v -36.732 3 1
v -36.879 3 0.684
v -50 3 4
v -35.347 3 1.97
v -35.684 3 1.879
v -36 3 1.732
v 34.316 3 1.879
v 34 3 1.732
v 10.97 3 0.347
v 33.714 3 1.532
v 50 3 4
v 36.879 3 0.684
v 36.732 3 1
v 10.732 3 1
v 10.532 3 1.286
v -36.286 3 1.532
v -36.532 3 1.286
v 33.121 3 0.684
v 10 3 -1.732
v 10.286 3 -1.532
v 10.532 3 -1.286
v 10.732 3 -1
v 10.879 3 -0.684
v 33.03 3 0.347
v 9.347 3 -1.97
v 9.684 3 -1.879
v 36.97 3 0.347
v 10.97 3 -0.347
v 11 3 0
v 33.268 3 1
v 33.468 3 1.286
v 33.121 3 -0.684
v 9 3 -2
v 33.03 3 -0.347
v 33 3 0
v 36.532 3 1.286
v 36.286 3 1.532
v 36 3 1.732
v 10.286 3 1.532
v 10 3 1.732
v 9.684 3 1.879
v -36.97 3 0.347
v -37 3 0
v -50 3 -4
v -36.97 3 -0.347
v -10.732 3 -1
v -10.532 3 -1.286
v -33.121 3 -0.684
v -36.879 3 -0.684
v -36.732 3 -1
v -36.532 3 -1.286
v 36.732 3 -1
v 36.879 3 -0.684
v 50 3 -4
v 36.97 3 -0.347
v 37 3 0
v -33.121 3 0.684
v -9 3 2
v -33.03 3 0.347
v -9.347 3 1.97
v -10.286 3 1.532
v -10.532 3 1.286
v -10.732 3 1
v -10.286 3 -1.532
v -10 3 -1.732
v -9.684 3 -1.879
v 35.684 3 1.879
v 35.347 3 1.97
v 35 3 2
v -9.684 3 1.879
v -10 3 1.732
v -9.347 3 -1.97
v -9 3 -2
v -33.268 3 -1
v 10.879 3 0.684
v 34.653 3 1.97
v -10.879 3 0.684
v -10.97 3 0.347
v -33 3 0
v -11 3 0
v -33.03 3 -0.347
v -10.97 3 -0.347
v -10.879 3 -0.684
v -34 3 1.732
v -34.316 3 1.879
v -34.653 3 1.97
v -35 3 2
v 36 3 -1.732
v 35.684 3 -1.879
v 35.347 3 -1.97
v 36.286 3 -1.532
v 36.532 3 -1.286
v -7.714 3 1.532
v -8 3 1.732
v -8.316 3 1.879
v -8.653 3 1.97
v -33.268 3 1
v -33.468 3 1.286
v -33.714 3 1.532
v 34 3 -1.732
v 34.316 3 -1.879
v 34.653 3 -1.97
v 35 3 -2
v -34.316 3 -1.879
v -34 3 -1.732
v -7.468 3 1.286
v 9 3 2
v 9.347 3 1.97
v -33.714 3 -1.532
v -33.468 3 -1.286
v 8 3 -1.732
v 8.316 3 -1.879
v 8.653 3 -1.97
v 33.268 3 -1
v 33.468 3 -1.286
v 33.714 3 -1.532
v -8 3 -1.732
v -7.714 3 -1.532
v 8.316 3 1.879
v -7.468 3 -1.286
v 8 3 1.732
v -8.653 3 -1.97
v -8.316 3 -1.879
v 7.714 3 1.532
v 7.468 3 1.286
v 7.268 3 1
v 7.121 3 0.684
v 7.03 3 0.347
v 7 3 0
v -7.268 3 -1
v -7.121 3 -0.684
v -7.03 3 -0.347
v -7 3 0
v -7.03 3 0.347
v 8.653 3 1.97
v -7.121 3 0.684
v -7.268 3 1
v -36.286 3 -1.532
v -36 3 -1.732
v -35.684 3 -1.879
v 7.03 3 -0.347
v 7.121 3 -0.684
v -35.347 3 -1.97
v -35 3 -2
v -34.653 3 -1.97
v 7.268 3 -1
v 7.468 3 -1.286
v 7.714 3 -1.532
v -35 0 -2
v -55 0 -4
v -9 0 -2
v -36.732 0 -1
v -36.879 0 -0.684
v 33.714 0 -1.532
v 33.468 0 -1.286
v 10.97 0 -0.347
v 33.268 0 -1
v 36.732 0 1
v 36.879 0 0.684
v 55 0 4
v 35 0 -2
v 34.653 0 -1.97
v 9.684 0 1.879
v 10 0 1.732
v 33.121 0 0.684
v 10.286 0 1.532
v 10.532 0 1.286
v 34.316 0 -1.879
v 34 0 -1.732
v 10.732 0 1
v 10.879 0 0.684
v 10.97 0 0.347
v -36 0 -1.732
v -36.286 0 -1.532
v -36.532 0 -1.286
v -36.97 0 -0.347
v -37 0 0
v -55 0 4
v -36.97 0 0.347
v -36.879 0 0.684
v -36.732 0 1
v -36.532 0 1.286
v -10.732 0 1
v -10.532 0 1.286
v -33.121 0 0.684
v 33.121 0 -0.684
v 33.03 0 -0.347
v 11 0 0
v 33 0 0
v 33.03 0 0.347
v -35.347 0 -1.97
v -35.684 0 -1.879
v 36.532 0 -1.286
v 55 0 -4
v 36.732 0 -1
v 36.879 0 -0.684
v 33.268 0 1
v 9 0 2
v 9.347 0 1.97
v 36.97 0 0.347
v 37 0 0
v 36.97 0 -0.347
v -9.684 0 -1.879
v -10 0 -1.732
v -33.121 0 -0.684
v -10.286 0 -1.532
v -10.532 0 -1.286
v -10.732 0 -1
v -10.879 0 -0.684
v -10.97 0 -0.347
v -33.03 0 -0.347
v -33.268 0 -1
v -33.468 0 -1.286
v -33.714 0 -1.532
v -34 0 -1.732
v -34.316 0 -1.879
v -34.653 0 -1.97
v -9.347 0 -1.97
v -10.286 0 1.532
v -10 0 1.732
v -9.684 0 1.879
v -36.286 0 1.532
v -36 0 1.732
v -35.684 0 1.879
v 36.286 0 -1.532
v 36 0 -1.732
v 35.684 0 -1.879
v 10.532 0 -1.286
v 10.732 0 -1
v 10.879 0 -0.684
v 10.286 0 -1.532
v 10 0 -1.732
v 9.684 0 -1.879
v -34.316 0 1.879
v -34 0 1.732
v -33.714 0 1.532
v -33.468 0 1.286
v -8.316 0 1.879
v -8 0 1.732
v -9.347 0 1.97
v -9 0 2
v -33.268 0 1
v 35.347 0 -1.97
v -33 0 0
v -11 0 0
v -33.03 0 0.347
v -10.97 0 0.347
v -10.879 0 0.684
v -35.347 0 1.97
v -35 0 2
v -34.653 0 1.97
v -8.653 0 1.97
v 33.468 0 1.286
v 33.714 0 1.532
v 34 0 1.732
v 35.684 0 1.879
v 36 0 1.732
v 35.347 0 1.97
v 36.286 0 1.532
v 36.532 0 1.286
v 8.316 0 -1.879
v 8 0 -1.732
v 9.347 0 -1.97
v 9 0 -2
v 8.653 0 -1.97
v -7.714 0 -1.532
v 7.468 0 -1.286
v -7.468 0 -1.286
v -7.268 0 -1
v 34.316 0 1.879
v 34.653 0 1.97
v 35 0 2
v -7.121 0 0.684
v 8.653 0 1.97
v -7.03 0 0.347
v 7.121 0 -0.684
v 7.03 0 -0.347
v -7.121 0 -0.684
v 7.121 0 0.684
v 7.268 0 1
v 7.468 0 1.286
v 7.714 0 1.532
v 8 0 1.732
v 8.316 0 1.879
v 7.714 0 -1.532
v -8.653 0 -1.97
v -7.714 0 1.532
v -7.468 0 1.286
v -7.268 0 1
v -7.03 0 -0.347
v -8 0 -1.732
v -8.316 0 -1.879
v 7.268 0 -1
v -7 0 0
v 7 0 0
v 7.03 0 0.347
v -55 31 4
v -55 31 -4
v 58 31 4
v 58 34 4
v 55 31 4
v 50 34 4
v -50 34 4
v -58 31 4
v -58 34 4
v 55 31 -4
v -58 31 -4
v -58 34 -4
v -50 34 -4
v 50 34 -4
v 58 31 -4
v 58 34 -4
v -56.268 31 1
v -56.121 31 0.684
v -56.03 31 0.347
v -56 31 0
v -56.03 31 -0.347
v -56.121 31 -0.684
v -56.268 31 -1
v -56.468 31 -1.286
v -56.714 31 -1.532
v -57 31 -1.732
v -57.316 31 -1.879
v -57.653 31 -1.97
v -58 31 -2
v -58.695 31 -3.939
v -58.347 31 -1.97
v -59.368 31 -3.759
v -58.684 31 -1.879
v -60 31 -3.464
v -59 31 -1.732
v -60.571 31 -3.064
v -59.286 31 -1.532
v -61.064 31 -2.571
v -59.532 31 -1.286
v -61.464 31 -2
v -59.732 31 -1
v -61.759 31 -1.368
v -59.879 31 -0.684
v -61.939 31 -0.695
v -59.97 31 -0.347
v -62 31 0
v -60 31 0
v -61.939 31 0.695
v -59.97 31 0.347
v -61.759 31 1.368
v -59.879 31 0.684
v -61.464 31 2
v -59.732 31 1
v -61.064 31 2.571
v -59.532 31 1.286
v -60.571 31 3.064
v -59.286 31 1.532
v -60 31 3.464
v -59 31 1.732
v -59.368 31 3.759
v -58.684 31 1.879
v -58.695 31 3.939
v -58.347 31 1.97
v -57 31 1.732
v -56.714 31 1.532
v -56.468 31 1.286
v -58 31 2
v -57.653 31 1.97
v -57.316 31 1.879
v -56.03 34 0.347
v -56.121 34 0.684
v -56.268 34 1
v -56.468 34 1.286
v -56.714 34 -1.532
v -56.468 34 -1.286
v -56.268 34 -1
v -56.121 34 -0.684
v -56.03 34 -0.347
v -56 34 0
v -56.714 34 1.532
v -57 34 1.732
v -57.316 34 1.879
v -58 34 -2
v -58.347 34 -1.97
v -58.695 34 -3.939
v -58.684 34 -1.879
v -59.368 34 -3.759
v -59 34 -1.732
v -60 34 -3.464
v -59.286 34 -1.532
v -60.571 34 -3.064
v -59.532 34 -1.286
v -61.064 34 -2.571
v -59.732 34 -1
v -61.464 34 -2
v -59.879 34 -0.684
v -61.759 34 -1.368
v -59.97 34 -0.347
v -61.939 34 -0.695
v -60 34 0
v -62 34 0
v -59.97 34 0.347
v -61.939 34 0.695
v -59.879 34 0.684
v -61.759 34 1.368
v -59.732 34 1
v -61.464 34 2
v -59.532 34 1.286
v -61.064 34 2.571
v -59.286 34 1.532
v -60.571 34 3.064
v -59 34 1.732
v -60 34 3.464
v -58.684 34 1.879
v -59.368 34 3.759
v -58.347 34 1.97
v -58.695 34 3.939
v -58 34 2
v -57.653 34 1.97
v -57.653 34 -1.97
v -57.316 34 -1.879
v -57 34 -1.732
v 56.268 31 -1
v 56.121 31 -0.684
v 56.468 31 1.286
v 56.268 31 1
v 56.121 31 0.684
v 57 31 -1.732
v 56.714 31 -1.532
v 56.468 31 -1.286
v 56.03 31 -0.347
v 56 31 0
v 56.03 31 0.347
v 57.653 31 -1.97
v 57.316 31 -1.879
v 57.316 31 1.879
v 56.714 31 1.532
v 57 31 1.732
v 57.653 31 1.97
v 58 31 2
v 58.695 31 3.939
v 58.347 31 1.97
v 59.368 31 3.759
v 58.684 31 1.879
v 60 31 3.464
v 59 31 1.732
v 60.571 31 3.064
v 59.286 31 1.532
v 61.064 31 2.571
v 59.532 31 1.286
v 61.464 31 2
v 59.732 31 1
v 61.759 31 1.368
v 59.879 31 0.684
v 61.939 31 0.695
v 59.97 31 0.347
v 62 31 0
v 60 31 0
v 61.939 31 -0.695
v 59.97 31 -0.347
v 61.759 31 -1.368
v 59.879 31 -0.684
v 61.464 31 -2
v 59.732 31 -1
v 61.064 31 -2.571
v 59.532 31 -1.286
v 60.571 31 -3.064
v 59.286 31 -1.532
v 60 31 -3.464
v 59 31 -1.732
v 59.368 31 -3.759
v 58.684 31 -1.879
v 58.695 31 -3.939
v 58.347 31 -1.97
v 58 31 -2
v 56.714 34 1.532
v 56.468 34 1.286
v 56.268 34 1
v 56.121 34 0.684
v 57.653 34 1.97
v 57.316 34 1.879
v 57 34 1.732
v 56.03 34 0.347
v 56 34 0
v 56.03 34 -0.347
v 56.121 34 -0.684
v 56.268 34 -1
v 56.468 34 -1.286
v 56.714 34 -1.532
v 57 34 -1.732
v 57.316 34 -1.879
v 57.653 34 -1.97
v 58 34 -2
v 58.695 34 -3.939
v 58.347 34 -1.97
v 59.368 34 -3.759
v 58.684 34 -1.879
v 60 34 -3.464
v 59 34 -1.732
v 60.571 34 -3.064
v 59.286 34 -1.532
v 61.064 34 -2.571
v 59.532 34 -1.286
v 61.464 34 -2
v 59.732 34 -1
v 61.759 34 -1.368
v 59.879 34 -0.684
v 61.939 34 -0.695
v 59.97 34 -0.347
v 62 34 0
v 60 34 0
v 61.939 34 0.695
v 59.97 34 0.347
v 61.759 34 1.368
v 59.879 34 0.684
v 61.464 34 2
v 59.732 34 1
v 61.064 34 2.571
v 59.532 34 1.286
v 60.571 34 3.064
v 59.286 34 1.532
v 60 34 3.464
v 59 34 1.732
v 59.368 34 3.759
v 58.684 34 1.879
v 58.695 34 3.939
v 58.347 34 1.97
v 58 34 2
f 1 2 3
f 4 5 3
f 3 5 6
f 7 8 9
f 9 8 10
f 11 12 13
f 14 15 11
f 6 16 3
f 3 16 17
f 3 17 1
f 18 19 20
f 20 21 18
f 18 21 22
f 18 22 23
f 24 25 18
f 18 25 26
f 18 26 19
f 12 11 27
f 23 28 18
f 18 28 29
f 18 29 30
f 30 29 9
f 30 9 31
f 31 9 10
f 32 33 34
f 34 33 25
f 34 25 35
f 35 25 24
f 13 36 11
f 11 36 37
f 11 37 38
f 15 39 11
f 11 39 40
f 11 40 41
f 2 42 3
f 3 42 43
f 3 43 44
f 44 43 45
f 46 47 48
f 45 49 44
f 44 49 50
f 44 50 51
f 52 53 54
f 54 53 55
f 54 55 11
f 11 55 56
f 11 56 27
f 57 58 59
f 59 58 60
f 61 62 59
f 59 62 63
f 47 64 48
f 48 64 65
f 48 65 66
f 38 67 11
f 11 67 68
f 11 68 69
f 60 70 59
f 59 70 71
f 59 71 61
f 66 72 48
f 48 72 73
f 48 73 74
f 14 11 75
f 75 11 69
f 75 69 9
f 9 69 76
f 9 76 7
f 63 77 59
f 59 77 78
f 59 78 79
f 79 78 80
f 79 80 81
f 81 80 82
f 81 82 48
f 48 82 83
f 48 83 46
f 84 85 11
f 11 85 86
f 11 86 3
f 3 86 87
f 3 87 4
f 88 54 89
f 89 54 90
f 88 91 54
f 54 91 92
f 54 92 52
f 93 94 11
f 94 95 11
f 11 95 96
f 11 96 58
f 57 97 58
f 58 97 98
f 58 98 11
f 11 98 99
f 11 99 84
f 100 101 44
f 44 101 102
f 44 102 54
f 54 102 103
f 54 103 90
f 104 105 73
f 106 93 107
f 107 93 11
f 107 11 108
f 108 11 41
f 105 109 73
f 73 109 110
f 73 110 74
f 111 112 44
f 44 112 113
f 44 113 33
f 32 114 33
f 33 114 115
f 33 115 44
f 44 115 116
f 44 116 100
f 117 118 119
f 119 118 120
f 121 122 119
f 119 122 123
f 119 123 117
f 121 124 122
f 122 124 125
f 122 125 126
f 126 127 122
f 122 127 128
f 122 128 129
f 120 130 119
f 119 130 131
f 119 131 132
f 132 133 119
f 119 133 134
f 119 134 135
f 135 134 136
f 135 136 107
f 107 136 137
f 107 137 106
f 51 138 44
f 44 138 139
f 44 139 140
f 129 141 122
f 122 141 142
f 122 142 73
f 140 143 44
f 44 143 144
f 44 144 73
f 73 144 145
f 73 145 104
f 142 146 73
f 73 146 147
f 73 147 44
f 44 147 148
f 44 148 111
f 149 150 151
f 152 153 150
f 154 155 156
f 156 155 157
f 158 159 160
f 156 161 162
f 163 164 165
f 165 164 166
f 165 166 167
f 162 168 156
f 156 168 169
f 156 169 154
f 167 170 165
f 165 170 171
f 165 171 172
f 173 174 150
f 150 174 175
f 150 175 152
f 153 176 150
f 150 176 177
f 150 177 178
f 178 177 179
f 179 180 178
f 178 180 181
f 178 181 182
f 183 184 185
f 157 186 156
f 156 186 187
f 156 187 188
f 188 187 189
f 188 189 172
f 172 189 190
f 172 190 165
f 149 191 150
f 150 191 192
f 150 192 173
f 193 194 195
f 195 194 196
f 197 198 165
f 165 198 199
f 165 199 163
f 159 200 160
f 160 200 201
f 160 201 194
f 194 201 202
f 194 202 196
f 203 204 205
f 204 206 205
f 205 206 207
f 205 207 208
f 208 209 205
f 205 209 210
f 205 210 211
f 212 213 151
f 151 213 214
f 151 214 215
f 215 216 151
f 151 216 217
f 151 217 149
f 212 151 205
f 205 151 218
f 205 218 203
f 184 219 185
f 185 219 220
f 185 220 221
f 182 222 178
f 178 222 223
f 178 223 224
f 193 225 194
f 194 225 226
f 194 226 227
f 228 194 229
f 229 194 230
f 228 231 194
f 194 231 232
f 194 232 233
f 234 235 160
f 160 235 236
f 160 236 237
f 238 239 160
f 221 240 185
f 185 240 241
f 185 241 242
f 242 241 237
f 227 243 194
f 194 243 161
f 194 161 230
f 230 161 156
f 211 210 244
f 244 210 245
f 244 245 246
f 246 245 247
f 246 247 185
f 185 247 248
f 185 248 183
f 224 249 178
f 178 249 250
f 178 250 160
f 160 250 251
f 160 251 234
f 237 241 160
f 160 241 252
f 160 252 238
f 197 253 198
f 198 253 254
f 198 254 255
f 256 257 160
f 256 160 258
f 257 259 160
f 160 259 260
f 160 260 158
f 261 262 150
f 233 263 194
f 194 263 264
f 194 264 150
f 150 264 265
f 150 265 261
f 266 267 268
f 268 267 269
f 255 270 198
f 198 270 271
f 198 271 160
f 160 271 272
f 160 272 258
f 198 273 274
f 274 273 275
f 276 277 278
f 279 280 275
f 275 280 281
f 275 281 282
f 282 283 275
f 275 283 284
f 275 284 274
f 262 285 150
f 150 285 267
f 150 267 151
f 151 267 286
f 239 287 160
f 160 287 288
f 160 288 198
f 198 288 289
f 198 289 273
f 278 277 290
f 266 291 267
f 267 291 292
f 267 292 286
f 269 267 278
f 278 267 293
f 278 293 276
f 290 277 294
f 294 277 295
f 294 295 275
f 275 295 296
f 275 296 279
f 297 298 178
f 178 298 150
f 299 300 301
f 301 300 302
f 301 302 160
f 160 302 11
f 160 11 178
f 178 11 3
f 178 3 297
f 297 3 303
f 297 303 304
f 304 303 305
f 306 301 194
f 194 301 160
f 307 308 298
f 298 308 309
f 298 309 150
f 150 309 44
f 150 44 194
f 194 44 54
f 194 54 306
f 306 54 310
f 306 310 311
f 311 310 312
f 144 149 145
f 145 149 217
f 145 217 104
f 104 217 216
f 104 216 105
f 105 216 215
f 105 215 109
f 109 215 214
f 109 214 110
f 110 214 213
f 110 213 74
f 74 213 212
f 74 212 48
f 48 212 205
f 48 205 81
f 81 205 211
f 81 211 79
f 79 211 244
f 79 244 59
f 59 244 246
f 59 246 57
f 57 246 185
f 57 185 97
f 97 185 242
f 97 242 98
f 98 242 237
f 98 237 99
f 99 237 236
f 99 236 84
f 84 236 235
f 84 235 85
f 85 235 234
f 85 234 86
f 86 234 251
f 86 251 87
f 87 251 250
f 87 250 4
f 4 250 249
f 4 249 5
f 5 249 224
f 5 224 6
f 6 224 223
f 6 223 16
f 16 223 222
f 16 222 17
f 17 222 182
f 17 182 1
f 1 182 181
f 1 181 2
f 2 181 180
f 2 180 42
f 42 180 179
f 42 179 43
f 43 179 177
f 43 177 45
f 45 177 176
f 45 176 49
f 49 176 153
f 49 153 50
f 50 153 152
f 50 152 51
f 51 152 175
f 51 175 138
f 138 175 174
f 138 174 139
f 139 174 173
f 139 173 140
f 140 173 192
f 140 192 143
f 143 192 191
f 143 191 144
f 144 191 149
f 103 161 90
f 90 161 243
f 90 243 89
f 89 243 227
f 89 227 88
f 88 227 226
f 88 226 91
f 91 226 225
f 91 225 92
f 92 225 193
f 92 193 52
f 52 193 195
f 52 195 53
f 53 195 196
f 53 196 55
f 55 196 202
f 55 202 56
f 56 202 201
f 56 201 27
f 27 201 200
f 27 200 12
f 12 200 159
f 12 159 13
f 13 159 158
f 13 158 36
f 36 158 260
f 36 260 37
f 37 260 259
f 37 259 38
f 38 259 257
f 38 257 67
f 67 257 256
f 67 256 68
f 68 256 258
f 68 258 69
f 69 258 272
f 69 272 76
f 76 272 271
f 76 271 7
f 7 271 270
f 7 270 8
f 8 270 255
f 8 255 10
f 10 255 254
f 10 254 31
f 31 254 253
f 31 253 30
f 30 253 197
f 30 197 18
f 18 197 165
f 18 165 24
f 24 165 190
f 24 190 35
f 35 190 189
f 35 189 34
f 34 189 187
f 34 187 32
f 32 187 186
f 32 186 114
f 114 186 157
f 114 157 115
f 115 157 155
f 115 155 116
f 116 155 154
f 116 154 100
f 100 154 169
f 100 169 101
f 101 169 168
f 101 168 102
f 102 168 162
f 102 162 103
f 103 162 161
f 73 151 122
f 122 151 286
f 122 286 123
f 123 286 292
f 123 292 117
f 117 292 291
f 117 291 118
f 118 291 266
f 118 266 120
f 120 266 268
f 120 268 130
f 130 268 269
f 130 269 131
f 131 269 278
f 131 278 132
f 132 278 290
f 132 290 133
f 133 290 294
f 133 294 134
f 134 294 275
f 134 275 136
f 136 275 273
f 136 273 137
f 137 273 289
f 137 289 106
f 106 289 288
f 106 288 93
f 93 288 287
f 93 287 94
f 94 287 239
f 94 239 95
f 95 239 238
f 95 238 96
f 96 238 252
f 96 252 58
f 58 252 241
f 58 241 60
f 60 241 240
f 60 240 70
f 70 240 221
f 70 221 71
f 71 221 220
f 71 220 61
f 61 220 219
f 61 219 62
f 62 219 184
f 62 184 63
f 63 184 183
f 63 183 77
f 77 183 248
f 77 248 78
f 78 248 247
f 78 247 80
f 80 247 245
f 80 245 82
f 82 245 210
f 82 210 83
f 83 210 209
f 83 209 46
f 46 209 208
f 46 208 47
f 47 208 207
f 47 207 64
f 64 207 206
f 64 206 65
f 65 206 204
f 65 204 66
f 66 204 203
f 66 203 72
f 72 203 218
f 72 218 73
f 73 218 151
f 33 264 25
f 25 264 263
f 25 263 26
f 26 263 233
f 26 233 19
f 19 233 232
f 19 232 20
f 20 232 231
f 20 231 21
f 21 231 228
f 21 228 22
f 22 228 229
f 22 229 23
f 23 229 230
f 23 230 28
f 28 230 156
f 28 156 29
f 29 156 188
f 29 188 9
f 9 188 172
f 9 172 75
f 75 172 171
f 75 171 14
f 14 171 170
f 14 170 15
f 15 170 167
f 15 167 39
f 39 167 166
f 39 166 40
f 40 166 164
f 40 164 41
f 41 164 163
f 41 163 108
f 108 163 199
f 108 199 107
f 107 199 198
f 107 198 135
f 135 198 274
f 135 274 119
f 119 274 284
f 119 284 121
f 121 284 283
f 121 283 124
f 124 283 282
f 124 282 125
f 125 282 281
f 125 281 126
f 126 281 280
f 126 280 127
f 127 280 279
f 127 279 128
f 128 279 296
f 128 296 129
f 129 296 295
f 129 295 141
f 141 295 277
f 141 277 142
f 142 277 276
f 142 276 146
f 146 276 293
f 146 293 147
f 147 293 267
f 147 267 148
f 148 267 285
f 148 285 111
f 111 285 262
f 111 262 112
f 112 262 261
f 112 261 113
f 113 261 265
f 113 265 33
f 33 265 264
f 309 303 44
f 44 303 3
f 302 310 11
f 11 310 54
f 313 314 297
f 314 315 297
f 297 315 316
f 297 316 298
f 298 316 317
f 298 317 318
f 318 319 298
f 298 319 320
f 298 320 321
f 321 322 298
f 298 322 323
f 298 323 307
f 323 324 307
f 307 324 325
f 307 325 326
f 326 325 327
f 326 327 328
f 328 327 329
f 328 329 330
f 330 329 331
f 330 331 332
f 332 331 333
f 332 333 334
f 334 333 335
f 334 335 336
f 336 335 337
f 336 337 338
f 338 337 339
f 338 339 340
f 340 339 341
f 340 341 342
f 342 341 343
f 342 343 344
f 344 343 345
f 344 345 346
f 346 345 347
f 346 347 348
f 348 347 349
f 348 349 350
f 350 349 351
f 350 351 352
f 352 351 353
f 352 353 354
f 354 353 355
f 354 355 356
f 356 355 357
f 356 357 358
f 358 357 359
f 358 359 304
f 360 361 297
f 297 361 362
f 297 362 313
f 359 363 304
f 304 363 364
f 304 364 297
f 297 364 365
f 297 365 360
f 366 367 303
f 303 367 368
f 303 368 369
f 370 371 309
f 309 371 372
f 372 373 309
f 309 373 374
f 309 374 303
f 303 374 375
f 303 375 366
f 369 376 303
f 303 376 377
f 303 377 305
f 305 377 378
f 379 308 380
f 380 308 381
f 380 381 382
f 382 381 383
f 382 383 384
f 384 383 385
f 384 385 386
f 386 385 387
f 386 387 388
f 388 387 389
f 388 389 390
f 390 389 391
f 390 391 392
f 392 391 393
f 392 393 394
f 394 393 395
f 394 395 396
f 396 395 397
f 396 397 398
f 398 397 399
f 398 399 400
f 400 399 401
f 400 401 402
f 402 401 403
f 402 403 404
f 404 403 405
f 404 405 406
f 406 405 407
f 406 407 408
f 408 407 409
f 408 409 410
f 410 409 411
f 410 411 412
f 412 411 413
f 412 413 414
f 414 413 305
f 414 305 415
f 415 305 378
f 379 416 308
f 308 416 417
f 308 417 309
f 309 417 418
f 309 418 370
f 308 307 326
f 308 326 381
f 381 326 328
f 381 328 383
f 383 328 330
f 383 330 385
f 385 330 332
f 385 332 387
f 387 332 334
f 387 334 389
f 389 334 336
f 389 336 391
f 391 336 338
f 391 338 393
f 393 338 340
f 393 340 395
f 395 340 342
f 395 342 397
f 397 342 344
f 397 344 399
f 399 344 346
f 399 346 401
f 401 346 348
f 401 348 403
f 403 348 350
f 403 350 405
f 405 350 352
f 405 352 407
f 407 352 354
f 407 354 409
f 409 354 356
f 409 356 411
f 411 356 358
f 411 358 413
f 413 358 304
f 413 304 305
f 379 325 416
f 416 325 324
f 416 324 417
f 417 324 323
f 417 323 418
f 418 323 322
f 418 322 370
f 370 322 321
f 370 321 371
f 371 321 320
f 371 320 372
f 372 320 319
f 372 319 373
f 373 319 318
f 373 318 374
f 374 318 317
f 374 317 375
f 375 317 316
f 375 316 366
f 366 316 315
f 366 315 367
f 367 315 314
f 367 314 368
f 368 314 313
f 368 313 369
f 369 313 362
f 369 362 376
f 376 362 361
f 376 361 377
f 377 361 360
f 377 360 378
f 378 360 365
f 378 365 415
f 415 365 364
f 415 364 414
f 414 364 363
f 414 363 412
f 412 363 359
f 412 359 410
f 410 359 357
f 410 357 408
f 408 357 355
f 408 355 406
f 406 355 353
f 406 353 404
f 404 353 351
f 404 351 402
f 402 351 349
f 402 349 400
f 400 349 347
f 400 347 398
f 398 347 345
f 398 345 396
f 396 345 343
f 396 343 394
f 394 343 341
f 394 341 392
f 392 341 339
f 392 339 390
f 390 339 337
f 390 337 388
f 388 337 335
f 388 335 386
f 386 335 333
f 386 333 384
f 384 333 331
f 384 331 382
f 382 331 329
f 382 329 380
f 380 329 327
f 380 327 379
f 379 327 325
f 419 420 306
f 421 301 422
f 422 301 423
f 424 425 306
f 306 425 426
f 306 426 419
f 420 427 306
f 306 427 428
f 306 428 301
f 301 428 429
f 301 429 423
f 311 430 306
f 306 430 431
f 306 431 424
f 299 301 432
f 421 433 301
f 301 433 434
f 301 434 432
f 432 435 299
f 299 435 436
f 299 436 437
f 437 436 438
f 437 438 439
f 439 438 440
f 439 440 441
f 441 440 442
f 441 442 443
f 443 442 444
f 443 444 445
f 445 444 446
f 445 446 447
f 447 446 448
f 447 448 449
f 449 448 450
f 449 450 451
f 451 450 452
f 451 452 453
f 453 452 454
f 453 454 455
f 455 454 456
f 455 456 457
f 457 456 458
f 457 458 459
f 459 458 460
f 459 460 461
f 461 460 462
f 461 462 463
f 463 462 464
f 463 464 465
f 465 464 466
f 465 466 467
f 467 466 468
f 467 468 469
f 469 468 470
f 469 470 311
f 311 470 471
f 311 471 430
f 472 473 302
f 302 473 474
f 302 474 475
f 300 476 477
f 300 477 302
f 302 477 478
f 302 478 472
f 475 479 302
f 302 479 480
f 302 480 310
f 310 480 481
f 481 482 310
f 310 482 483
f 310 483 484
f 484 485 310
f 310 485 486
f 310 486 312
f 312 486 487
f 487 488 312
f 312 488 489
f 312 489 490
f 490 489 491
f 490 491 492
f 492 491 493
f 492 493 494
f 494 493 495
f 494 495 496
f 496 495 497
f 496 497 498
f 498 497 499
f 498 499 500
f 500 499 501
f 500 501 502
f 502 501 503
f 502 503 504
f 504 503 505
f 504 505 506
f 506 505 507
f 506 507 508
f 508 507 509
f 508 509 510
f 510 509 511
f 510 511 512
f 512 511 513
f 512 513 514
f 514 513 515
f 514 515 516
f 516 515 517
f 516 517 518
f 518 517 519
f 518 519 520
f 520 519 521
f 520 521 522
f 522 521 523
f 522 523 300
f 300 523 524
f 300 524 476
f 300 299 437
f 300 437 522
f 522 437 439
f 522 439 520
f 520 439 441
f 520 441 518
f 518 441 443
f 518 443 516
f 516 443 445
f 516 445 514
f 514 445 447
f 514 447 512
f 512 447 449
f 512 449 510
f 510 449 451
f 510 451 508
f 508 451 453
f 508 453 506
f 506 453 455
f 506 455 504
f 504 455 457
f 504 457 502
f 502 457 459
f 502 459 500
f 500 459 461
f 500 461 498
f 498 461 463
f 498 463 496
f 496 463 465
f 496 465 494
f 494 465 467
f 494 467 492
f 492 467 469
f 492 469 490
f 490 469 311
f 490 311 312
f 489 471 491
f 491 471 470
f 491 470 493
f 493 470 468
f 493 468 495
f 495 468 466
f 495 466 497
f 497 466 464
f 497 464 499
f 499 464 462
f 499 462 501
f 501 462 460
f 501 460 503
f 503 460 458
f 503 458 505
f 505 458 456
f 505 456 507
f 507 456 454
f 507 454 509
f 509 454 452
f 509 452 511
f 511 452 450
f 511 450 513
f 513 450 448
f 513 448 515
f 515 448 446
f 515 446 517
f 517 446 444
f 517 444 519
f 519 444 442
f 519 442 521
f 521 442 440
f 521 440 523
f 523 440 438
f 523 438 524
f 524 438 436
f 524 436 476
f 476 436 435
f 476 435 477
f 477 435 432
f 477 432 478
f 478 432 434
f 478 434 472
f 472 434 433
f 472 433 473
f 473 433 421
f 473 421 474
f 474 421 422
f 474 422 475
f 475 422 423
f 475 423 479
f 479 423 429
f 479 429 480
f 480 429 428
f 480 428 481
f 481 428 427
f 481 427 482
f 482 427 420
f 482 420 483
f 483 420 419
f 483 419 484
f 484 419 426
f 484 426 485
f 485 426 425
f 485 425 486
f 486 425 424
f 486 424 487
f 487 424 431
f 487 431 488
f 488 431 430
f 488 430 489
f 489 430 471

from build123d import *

# Parameters (mm, degrees)
SKETCH1_W           = 110
SKETCH1_H           = 8
SKETCH1_R           = 2
BOSS_EXTRUDE1_DEPTH = 3
SKETCH2_W           = 5
SKETCH2_H           = 8
BOSS_EXTRUDE2_DEPTH = 28
SKETCH3_R           = 2
BOSS_EXTRUDE3_DEPTH = 3


with BuildPart() as part:
    # Sketch1 → Boss-Extrude1 (new body)
    with BuildSketch(Plane(origin=(0, 0, 0), x_dir=(1, 0, 0), z_dir=(0, 1, 0))):
        Rectangle(SKETCH1_W, SKETCH1_H)
        with Locations(Location((-35, 0, 0), (0, 0, 270))):
            Circle(SKETCH1_R, mode=Mode.SUBTRACT)
        with Locations(Location((35, 0, 0), (0, 0, 270))):
            Circle(SKETCH1_R, mode=Mode.SUBTRACT)
        with Locations(Location((-9, 0, 0), (0, 0, 270))):
            Circle(SKETCH1_R, mode=Mode.SUBTRACT)
        with Locations(Location((9, 0, 0), (0, 0, 270))):
            Circle(SKETCH1_R, mode=Mode.SUBTRACT)
    extrude(amount=BOSS_EXTRUDE1_DEPTH)

    # Sketch2 → Boss-Extrude2 (add)
    with BuildSketch(Plane(origin=(0, 3, 0), x_dir=(1, 0, 0), z_dir=(0, 1, 0))):
        with Locations((-52.5, 0)):
            Rectangle(SKETCH2_W, SKETCH2_H)
        with Locations((52.5, 0)):
            Rectangle(SKETCH2_W, SKETCH2_H)
    extrude(amount=BOSS_EXTRUDE2_DEPTH)

    # Sketch3 → Boss-Extrude3 (add)
    # profile 1 of 2: a face of its own
    with BuildSketch(Plane(origin=(0, 31, 0), x_dir=(1, 0, 0), z_dir=(0, 1, 0))):
        with BuildLine():
            Line((-50, 4), (-58, 4))
            ThreePointArc((-58, 4), (-62, 0), (-58, -4))
            Line((-58, -4), (-50, -4))
            Line((-50, -4), (-50, 4))
        make_face()
        with Locations(Location((-58, 0, 0), (0, 0, 270))):
            Circle(SKETCH3_R, mode=Mode.SUBTRACT)
    # profile 2 of 2: a face of its own
    with BuildSketch(Plane(origin=(0, 31, 0), x_dir=(1, 0, 0), z_dir=(0, 1, 0))):
        with BuildLine():
            Line((50, 4), (58, 4))
            ThreePointArc((58, 4), (62, 0), (58, -4))
            Line((58, -4), (50, -4))
            Line((50, -4), (50, 4))
        make_face()
        with Locations(Location((58, 0, 0), (0, 0, 90))):
            Circle(SKETCH3_R, mode=Mode.SUBTRACT)
    extrude(amount=BOSS_EXTRUDE3_DEPTH)


solid = part.part
